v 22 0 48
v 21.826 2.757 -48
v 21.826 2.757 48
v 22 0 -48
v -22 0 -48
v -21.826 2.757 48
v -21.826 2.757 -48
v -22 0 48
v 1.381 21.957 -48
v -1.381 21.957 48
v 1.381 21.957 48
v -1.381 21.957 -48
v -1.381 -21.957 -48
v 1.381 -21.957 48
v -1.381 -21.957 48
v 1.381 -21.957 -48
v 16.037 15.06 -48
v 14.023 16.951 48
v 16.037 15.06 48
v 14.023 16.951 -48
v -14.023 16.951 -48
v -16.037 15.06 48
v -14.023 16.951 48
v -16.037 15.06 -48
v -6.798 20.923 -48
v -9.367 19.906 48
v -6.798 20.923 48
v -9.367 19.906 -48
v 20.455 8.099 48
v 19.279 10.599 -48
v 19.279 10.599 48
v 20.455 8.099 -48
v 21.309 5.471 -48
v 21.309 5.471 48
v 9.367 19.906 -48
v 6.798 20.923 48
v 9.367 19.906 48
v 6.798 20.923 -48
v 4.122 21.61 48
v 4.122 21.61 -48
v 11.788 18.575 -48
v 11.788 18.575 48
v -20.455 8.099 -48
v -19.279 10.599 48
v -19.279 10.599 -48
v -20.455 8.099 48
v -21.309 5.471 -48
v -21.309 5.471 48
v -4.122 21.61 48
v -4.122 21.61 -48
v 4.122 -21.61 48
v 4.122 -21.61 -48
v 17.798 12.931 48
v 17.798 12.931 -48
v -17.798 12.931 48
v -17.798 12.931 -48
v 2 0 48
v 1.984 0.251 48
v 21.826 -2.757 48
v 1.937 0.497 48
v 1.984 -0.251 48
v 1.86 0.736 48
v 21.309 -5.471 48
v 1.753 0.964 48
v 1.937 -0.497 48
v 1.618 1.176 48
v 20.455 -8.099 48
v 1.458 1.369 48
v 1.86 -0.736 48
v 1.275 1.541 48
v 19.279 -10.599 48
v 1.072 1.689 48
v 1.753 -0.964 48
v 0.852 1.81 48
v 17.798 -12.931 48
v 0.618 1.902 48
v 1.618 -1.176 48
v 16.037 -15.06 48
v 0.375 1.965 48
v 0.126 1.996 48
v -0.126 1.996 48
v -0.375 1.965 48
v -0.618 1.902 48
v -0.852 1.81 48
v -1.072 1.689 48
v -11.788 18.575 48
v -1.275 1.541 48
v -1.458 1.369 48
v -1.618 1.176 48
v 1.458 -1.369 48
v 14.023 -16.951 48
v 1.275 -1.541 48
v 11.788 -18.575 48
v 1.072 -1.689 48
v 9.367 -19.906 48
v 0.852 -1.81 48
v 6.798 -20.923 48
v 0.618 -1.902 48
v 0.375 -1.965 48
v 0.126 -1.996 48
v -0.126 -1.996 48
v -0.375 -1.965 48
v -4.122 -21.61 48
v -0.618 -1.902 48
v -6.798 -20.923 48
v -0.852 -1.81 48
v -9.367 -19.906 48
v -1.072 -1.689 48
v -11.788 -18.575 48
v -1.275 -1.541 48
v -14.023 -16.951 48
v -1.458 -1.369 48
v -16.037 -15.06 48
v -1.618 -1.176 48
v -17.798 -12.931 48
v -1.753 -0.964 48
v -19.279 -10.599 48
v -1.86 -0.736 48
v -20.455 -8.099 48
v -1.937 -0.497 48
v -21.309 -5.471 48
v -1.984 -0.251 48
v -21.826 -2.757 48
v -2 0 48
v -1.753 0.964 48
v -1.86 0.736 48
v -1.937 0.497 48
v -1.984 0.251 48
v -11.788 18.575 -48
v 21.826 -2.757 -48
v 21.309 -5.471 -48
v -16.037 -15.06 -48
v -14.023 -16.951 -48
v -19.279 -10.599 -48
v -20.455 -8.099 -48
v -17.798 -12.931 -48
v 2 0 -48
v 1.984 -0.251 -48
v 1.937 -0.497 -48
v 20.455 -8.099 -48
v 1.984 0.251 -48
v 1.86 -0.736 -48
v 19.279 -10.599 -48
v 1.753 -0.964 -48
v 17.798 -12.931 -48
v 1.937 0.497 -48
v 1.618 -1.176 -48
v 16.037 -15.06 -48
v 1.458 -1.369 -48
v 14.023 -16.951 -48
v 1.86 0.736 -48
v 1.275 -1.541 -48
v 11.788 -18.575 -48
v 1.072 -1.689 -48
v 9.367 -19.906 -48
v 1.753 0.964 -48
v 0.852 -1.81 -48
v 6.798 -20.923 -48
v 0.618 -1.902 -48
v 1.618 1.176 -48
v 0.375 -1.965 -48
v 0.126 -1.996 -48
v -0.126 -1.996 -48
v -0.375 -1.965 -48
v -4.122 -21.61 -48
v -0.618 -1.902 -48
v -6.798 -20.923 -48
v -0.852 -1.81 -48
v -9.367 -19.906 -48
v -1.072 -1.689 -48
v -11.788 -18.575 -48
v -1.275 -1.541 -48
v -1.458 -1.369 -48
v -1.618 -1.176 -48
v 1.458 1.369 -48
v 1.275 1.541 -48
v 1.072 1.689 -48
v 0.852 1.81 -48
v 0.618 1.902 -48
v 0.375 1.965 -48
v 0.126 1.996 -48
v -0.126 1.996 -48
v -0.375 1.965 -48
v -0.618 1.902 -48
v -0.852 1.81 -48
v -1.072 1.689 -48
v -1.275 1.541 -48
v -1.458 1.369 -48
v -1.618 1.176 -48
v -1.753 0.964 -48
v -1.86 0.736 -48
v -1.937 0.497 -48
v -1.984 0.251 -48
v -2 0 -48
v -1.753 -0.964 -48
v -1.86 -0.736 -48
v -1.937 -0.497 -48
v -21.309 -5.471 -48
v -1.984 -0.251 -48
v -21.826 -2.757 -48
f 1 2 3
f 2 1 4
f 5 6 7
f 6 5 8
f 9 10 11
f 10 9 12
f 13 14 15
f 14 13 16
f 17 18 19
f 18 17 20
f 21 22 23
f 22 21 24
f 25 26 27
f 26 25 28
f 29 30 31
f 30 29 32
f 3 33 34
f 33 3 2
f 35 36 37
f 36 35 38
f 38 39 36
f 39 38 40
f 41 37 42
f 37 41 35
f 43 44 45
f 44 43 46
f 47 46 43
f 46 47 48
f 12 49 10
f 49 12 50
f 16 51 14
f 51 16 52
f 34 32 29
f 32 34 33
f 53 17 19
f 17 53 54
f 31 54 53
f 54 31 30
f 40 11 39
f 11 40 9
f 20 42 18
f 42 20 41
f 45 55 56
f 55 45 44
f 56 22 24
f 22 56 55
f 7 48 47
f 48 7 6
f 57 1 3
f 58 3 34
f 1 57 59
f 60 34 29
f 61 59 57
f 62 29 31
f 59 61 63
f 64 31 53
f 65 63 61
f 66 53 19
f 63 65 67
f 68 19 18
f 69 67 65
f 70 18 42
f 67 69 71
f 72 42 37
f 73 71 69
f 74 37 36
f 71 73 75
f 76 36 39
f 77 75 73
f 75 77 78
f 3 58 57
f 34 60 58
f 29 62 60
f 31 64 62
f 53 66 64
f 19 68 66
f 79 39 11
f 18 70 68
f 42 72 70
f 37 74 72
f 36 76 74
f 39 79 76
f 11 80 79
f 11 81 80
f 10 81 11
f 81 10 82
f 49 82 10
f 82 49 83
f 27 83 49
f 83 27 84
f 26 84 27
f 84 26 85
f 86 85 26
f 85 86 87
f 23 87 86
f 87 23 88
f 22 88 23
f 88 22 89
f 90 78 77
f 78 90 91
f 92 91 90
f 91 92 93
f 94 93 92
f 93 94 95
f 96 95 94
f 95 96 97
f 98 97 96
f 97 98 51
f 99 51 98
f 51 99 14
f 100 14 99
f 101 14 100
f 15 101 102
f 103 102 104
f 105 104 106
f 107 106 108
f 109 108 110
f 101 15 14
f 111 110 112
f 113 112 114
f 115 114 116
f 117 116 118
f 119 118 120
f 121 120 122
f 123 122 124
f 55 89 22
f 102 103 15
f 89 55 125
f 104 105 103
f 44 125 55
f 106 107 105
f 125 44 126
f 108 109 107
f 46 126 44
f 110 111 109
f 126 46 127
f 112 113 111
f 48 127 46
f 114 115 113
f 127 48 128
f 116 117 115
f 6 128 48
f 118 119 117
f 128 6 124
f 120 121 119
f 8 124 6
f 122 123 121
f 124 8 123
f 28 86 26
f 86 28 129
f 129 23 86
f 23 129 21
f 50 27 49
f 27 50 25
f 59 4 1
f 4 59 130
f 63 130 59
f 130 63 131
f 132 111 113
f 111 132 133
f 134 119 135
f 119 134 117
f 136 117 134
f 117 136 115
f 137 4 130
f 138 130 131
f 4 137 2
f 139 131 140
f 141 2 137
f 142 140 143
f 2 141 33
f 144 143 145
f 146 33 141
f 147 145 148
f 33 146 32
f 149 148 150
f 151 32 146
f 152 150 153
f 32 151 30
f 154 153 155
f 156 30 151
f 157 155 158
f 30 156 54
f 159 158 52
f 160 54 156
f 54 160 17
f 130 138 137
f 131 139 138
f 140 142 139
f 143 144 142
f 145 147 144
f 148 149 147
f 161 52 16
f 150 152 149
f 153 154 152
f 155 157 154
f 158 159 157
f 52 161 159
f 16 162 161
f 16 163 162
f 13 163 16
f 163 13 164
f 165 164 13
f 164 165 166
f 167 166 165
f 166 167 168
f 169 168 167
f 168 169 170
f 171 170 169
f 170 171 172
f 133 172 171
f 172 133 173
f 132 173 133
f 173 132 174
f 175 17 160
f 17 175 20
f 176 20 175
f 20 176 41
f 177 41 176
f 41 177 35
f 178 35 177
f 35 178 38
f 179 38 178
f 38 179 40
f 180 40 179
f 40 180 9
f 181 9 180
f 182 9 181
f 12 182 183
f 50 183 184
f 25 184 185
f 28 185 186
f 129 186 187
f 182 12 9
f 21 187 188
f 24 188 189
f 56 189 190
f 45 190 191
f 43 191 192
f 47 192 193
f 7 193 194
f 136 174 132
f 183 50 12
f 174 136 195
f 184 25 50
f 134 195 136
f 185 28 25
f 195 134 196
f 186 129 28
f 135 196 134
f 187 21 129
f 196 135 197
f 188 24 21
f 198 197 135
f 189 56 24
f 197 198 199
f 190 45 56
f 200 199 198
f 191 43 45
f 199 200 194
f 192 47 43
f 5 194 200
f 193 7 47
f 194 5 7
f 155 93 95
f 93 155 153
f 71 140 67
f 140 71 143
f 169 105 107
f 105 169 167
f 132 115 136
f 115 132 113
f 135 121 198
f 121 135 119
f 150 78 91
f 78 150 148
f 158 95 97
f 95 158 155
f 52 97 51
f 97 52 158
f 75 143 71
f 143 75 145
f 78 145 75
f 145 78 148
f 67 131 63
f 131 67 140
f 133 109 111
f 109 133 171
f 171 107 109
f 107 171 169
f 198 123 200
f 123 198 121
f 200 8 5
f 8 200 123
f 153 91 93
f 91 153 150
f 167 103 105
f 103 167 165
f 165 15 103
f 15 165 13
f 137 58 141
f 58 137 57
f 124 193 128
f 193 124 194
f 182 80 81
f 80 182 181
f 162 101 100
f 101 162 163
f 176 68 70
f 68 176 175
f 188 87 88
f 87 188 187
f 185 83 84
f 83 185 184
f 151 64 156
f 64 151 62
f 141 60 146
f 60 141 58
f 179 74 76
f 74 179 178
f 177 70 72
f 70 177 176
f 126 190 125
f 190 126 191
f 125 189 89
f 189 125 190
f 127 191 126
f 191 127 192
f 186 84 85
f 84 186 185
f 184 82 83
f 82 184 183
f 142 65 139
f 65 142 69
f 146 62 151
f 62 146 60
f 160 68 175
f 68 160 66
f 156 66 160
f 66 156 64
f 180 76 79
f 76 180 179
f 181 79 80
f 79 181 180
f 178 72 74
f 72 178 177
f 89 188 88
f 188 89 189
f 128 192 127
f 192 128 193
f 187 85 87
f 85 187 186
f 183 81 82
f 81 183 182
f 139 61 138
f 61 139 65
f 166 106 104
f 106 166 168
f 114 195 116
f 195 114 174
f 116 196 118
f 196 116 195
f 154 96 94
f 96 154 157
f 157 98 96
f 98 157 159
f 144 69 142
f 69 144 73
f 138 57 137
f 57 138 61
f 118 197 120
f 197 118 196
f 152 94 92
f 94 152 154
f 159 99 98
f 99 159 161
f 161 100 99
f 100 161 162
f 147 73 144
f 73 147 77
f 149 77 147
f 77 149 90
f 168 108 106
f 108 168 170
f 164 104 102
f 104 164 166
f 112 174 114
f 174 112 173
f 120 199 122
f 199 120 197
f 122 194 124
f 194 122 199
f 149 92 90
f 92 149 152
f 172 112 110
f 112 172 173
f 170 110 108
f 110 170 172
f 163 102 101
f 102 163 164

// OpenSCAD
$fn = 50;


difference() {
	union() {
		translate(v = [0, 0, -48.0000000000]) {
			cylinder(h = 96, r = 22.0000000000);
		}
	}
	union() {
		translate(v = [0, 0, -100.0000000000]) {
			cylinder(h = 200, r = 2.0000000000);
		}
	}
}
